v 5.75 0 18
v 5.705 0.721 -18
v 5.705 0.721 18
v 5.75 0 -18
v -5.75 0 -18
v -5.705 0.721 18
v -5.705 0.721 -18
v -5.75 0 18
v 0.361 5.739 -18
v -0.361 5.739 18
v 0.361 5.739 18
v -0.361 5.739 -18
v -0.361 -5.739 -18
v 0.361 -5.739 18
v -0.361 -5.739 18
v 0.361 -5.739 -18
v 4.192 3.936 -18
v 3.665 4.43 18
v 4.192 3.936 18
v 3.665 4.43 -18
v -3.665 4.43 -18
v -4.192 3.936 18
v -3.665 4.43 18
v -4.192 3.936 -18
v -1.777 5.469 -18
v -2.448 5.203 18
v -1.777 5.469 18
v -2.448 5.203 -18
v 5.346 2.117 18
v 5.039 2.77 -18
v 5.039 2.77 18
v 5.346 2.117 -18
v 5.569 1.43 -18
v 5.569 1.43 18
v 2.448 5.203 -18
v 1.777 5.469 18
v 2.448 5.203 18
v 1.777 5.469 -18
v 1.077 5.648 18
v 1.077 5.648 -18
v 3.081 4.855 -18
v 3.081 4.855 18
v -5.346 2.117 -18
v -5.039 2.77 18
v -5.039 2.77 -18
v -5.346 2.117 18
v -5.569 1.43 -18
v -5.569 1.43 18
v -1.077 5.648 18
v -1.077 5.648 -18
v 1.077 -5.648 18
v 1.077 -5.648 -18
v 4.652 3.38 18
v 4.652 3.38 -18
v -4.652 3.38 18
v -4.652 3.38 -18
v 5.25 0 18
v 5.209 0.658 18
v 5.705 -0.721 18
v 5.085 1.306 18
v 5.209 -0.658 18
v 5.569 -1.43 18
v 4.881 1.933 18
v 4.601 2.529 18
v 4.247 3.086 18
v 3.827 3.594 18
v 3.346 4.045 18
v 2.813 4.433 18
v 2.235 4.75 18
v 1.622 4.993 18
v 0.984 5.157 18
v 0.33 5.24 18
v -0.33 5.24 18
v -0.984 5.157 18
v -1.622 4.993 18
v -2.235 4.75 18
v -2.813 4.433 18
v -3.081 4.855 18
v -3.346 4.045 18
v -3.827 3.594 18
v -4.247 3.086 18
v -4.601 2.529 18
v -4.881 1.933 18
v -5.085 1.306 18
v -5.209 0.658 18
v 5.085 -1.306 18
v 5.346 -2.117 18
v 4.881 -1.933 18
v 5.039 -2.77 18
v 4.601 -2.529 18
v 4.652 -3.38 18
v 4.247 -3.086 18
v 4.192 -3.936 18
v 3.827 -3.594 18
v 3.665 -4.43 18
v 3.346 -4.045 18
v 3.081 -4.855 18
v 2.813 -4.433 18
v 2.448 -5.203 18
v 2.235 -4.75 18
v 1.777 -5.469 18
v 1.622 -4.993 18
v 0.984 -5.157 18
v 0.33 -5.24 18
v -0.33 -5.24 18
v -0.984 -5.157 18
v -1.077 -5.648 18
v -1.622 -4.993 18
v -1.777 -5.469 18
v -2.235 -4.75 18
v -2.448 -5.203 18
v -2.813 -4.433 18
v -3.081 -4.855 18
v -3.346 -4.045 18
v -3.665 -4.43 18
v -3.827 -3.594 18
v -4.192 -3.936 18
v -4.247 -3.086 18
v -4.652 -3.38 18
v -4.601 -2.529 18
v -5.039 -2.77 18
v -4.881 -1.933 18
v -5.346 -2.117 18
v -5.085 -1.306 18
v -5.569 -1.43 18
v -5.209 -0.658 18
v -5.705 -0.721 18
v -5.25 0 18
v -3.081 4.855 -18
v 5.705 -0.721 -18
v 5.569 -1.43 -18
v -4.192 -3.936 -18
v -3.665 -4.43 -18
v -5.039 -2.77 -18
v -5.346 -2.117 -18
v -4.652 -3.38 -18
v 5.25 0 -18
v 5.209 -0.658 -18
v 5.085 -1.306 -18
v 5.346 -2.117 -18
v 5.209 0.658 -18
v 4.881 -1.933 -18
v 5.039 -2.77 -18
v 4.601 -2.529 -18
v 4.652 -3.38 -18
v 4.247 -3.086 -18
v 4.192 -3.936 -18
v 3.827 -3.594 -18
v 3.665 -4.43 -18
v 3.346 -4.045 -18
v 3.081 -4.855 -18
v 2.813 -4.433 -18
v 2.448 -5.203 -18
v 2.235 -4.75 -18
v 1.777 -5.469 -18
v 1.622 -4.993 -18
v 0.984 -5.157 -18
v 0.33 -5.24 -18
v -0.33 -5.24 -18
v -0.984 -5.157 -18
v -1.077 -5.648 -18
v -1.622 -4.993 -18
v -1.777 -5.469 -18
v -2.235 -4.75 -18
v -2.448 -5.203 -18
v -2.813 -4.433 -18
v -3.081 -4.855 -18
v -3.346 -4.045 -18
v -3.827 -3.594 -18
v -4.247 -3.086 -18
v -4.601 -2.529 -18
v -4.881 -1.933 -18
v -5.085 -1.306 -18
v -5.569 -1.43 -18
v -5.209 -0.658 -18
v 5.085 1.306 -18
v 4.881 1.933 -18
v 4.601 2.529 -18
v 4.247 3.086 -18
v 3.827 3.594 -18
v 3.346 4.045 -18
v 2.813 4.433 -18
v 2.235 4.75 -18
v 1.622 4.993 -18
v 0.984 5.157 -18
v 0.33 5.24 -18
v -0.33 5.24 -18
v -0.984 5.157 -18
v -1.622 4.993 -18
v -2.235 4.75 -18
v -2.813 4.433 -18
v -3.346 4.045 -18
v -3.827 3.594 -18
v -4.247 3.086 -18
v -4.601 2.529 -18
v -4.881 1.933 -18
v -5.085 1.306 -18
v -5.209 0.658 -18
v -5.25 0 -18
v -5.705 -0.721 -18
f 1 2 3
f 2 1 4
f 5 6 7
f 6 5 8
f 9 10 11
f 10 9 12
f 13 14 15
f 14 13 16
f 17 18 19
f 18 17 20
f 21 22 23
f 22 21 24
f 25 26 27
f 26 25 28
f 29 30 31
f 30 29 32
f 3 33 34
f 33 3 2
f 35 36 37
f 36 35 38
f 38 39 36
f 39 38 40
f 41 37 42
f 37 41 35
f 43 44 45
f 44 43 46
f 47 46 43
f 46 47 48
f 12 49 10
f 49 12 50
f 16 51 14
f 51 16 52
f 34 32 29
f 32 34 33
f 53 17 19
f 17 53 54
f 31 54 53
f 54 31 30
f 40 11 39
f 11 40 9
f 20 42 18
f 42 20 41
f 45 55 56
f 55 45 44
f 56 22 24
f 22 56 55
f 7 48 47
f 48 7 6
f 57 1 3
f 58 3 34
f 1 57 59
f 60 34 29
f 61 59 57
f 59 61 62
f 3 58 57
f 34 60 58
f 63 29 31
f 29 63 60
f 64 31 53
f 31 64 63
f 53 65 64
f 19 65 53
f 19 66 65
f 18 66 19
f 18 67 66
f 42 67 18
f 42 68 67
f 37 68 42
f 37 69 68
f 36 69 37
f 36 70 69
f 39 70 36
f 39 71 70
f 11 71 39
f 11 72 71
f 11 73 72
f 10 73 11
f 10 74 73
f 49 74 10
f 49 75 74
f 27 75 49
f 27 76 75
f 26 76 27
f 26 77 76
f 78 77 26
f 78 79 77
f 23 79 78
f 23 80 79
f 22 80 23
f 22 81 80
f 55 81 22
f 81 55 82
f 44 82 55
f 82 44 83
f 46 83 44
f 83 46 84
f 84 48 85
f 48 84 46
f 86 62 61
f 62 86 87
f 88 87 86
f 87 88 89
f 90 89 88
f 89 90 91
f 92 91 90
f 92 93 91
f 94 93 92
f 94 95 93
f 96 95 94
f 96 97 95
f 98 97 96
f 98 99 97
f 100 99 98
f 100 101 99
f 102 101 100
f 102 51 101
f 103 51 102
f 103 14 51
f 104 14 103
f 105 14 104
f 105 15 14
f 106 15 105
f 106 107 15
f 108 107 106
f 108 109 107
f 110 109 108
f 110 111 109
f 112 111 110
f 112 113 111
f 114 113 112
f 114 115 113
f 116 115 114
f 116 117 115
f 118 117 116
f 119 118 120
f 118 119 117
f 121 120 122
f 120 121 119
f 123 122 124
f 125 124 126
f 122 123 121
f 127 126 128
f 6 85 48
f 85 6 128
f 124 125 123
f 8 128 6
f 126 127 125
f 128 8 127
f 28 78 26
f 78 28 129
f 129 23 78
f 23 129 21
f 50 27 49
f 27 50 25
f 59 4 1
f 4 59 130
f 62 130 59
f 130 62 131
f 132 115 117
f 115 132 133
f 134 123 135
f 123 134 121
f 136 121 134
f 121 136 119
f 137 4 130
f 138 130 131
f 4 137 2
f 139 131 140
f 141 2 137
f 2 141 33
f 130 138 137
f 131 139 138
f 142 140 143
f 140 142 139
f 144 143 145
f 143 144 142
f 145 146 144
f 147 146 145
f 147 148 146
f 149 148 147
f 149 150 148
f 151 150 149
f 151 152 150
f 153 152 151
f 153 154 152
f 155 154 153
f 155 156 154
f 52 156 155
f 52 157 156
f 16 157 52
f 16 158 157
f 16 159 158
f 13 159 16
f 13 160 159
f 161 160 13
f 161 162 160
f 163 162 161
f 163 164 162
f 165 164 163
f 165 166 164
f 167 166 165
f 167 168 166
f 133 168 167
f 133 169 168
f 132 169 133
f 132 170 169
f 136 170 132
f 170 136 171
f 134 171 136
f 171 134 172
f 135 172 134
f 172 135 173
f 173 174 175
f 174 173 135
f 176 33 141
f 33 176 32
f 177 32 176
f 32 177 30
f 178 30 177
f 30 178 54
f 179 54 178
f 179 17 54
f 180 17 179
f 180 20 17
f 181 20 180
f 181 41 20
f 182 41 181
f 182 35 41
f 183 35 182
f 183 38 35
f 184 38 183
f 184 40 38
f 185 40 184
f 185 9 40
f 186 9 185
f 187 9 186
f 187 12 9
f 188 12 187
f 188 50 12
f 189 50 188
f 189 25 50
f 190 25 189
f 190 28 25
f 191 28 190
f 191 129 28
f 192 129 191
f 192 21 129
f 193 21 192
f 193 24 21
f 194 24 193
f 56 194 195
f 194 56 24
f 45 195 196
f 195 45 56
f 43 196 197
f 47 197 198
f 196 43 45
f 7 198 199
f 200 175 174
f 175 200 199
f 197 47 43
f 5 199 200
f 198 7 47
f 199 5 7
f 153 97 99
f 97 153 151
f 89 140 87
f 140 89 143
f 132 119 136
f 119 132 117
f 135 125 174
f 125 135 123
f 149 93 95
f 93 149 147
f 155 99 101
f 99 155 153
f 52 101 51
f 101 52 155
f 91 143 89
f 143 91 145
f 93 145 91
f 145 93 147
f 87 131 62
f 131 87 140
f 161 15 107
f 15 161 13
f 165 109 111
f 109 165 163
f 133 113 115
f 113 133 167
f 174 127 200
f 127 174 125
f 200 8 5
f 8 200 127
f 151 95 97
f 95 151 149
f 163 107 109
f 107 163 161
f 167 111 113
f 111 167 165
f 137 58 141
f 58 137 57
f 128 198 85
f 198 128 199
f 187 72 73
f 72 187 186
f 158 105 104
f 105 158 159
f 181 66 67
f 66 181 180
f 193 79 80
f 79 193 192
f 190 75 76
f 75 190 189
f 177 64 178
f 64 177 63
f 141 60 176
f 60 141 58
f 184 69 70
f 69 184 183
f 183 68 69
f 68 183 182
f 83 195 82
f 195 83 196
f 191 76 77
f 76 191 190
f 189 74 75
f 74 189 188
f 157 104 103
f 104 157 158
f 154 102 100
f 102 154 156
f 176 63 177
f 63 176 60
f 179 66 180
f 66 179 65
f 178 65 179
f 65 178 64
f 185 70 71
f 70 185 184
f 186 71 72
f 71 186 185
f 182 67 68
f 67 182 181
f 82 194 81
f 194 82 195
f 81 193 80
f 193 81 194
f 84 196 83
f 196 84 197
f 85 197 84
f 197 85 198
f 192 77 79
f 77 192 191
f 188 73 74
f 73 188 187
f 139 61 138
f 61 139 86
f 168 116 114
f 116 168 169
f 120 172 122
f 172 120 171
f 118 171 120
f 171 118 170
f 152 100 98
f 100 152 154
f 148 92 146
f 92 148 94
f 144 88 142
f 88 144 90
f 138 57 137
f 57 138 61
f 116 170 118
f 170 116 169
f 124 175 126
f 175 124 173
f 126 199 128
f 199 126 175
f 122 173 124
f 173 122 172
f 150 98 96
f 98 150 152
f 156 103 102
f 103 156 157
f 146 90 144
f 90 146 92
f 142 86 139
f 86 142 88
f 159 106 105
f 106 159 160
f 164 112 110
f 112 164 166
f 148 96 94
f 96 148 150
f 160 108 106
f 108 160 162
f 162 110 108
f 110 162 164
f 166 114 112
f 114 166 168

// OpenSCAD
$fn = 50;


difference() {
	union() {
		translate(v = [0, 0, -18.0000000000]) {
			cylinder(h = 36, r = 5.7500000000);
		}
	}
	union() {
		translate(v = [0, 0, -100.0000000000]) {
			cylinder(h = 200, r = 5.2500000000);
		}
	}
}
